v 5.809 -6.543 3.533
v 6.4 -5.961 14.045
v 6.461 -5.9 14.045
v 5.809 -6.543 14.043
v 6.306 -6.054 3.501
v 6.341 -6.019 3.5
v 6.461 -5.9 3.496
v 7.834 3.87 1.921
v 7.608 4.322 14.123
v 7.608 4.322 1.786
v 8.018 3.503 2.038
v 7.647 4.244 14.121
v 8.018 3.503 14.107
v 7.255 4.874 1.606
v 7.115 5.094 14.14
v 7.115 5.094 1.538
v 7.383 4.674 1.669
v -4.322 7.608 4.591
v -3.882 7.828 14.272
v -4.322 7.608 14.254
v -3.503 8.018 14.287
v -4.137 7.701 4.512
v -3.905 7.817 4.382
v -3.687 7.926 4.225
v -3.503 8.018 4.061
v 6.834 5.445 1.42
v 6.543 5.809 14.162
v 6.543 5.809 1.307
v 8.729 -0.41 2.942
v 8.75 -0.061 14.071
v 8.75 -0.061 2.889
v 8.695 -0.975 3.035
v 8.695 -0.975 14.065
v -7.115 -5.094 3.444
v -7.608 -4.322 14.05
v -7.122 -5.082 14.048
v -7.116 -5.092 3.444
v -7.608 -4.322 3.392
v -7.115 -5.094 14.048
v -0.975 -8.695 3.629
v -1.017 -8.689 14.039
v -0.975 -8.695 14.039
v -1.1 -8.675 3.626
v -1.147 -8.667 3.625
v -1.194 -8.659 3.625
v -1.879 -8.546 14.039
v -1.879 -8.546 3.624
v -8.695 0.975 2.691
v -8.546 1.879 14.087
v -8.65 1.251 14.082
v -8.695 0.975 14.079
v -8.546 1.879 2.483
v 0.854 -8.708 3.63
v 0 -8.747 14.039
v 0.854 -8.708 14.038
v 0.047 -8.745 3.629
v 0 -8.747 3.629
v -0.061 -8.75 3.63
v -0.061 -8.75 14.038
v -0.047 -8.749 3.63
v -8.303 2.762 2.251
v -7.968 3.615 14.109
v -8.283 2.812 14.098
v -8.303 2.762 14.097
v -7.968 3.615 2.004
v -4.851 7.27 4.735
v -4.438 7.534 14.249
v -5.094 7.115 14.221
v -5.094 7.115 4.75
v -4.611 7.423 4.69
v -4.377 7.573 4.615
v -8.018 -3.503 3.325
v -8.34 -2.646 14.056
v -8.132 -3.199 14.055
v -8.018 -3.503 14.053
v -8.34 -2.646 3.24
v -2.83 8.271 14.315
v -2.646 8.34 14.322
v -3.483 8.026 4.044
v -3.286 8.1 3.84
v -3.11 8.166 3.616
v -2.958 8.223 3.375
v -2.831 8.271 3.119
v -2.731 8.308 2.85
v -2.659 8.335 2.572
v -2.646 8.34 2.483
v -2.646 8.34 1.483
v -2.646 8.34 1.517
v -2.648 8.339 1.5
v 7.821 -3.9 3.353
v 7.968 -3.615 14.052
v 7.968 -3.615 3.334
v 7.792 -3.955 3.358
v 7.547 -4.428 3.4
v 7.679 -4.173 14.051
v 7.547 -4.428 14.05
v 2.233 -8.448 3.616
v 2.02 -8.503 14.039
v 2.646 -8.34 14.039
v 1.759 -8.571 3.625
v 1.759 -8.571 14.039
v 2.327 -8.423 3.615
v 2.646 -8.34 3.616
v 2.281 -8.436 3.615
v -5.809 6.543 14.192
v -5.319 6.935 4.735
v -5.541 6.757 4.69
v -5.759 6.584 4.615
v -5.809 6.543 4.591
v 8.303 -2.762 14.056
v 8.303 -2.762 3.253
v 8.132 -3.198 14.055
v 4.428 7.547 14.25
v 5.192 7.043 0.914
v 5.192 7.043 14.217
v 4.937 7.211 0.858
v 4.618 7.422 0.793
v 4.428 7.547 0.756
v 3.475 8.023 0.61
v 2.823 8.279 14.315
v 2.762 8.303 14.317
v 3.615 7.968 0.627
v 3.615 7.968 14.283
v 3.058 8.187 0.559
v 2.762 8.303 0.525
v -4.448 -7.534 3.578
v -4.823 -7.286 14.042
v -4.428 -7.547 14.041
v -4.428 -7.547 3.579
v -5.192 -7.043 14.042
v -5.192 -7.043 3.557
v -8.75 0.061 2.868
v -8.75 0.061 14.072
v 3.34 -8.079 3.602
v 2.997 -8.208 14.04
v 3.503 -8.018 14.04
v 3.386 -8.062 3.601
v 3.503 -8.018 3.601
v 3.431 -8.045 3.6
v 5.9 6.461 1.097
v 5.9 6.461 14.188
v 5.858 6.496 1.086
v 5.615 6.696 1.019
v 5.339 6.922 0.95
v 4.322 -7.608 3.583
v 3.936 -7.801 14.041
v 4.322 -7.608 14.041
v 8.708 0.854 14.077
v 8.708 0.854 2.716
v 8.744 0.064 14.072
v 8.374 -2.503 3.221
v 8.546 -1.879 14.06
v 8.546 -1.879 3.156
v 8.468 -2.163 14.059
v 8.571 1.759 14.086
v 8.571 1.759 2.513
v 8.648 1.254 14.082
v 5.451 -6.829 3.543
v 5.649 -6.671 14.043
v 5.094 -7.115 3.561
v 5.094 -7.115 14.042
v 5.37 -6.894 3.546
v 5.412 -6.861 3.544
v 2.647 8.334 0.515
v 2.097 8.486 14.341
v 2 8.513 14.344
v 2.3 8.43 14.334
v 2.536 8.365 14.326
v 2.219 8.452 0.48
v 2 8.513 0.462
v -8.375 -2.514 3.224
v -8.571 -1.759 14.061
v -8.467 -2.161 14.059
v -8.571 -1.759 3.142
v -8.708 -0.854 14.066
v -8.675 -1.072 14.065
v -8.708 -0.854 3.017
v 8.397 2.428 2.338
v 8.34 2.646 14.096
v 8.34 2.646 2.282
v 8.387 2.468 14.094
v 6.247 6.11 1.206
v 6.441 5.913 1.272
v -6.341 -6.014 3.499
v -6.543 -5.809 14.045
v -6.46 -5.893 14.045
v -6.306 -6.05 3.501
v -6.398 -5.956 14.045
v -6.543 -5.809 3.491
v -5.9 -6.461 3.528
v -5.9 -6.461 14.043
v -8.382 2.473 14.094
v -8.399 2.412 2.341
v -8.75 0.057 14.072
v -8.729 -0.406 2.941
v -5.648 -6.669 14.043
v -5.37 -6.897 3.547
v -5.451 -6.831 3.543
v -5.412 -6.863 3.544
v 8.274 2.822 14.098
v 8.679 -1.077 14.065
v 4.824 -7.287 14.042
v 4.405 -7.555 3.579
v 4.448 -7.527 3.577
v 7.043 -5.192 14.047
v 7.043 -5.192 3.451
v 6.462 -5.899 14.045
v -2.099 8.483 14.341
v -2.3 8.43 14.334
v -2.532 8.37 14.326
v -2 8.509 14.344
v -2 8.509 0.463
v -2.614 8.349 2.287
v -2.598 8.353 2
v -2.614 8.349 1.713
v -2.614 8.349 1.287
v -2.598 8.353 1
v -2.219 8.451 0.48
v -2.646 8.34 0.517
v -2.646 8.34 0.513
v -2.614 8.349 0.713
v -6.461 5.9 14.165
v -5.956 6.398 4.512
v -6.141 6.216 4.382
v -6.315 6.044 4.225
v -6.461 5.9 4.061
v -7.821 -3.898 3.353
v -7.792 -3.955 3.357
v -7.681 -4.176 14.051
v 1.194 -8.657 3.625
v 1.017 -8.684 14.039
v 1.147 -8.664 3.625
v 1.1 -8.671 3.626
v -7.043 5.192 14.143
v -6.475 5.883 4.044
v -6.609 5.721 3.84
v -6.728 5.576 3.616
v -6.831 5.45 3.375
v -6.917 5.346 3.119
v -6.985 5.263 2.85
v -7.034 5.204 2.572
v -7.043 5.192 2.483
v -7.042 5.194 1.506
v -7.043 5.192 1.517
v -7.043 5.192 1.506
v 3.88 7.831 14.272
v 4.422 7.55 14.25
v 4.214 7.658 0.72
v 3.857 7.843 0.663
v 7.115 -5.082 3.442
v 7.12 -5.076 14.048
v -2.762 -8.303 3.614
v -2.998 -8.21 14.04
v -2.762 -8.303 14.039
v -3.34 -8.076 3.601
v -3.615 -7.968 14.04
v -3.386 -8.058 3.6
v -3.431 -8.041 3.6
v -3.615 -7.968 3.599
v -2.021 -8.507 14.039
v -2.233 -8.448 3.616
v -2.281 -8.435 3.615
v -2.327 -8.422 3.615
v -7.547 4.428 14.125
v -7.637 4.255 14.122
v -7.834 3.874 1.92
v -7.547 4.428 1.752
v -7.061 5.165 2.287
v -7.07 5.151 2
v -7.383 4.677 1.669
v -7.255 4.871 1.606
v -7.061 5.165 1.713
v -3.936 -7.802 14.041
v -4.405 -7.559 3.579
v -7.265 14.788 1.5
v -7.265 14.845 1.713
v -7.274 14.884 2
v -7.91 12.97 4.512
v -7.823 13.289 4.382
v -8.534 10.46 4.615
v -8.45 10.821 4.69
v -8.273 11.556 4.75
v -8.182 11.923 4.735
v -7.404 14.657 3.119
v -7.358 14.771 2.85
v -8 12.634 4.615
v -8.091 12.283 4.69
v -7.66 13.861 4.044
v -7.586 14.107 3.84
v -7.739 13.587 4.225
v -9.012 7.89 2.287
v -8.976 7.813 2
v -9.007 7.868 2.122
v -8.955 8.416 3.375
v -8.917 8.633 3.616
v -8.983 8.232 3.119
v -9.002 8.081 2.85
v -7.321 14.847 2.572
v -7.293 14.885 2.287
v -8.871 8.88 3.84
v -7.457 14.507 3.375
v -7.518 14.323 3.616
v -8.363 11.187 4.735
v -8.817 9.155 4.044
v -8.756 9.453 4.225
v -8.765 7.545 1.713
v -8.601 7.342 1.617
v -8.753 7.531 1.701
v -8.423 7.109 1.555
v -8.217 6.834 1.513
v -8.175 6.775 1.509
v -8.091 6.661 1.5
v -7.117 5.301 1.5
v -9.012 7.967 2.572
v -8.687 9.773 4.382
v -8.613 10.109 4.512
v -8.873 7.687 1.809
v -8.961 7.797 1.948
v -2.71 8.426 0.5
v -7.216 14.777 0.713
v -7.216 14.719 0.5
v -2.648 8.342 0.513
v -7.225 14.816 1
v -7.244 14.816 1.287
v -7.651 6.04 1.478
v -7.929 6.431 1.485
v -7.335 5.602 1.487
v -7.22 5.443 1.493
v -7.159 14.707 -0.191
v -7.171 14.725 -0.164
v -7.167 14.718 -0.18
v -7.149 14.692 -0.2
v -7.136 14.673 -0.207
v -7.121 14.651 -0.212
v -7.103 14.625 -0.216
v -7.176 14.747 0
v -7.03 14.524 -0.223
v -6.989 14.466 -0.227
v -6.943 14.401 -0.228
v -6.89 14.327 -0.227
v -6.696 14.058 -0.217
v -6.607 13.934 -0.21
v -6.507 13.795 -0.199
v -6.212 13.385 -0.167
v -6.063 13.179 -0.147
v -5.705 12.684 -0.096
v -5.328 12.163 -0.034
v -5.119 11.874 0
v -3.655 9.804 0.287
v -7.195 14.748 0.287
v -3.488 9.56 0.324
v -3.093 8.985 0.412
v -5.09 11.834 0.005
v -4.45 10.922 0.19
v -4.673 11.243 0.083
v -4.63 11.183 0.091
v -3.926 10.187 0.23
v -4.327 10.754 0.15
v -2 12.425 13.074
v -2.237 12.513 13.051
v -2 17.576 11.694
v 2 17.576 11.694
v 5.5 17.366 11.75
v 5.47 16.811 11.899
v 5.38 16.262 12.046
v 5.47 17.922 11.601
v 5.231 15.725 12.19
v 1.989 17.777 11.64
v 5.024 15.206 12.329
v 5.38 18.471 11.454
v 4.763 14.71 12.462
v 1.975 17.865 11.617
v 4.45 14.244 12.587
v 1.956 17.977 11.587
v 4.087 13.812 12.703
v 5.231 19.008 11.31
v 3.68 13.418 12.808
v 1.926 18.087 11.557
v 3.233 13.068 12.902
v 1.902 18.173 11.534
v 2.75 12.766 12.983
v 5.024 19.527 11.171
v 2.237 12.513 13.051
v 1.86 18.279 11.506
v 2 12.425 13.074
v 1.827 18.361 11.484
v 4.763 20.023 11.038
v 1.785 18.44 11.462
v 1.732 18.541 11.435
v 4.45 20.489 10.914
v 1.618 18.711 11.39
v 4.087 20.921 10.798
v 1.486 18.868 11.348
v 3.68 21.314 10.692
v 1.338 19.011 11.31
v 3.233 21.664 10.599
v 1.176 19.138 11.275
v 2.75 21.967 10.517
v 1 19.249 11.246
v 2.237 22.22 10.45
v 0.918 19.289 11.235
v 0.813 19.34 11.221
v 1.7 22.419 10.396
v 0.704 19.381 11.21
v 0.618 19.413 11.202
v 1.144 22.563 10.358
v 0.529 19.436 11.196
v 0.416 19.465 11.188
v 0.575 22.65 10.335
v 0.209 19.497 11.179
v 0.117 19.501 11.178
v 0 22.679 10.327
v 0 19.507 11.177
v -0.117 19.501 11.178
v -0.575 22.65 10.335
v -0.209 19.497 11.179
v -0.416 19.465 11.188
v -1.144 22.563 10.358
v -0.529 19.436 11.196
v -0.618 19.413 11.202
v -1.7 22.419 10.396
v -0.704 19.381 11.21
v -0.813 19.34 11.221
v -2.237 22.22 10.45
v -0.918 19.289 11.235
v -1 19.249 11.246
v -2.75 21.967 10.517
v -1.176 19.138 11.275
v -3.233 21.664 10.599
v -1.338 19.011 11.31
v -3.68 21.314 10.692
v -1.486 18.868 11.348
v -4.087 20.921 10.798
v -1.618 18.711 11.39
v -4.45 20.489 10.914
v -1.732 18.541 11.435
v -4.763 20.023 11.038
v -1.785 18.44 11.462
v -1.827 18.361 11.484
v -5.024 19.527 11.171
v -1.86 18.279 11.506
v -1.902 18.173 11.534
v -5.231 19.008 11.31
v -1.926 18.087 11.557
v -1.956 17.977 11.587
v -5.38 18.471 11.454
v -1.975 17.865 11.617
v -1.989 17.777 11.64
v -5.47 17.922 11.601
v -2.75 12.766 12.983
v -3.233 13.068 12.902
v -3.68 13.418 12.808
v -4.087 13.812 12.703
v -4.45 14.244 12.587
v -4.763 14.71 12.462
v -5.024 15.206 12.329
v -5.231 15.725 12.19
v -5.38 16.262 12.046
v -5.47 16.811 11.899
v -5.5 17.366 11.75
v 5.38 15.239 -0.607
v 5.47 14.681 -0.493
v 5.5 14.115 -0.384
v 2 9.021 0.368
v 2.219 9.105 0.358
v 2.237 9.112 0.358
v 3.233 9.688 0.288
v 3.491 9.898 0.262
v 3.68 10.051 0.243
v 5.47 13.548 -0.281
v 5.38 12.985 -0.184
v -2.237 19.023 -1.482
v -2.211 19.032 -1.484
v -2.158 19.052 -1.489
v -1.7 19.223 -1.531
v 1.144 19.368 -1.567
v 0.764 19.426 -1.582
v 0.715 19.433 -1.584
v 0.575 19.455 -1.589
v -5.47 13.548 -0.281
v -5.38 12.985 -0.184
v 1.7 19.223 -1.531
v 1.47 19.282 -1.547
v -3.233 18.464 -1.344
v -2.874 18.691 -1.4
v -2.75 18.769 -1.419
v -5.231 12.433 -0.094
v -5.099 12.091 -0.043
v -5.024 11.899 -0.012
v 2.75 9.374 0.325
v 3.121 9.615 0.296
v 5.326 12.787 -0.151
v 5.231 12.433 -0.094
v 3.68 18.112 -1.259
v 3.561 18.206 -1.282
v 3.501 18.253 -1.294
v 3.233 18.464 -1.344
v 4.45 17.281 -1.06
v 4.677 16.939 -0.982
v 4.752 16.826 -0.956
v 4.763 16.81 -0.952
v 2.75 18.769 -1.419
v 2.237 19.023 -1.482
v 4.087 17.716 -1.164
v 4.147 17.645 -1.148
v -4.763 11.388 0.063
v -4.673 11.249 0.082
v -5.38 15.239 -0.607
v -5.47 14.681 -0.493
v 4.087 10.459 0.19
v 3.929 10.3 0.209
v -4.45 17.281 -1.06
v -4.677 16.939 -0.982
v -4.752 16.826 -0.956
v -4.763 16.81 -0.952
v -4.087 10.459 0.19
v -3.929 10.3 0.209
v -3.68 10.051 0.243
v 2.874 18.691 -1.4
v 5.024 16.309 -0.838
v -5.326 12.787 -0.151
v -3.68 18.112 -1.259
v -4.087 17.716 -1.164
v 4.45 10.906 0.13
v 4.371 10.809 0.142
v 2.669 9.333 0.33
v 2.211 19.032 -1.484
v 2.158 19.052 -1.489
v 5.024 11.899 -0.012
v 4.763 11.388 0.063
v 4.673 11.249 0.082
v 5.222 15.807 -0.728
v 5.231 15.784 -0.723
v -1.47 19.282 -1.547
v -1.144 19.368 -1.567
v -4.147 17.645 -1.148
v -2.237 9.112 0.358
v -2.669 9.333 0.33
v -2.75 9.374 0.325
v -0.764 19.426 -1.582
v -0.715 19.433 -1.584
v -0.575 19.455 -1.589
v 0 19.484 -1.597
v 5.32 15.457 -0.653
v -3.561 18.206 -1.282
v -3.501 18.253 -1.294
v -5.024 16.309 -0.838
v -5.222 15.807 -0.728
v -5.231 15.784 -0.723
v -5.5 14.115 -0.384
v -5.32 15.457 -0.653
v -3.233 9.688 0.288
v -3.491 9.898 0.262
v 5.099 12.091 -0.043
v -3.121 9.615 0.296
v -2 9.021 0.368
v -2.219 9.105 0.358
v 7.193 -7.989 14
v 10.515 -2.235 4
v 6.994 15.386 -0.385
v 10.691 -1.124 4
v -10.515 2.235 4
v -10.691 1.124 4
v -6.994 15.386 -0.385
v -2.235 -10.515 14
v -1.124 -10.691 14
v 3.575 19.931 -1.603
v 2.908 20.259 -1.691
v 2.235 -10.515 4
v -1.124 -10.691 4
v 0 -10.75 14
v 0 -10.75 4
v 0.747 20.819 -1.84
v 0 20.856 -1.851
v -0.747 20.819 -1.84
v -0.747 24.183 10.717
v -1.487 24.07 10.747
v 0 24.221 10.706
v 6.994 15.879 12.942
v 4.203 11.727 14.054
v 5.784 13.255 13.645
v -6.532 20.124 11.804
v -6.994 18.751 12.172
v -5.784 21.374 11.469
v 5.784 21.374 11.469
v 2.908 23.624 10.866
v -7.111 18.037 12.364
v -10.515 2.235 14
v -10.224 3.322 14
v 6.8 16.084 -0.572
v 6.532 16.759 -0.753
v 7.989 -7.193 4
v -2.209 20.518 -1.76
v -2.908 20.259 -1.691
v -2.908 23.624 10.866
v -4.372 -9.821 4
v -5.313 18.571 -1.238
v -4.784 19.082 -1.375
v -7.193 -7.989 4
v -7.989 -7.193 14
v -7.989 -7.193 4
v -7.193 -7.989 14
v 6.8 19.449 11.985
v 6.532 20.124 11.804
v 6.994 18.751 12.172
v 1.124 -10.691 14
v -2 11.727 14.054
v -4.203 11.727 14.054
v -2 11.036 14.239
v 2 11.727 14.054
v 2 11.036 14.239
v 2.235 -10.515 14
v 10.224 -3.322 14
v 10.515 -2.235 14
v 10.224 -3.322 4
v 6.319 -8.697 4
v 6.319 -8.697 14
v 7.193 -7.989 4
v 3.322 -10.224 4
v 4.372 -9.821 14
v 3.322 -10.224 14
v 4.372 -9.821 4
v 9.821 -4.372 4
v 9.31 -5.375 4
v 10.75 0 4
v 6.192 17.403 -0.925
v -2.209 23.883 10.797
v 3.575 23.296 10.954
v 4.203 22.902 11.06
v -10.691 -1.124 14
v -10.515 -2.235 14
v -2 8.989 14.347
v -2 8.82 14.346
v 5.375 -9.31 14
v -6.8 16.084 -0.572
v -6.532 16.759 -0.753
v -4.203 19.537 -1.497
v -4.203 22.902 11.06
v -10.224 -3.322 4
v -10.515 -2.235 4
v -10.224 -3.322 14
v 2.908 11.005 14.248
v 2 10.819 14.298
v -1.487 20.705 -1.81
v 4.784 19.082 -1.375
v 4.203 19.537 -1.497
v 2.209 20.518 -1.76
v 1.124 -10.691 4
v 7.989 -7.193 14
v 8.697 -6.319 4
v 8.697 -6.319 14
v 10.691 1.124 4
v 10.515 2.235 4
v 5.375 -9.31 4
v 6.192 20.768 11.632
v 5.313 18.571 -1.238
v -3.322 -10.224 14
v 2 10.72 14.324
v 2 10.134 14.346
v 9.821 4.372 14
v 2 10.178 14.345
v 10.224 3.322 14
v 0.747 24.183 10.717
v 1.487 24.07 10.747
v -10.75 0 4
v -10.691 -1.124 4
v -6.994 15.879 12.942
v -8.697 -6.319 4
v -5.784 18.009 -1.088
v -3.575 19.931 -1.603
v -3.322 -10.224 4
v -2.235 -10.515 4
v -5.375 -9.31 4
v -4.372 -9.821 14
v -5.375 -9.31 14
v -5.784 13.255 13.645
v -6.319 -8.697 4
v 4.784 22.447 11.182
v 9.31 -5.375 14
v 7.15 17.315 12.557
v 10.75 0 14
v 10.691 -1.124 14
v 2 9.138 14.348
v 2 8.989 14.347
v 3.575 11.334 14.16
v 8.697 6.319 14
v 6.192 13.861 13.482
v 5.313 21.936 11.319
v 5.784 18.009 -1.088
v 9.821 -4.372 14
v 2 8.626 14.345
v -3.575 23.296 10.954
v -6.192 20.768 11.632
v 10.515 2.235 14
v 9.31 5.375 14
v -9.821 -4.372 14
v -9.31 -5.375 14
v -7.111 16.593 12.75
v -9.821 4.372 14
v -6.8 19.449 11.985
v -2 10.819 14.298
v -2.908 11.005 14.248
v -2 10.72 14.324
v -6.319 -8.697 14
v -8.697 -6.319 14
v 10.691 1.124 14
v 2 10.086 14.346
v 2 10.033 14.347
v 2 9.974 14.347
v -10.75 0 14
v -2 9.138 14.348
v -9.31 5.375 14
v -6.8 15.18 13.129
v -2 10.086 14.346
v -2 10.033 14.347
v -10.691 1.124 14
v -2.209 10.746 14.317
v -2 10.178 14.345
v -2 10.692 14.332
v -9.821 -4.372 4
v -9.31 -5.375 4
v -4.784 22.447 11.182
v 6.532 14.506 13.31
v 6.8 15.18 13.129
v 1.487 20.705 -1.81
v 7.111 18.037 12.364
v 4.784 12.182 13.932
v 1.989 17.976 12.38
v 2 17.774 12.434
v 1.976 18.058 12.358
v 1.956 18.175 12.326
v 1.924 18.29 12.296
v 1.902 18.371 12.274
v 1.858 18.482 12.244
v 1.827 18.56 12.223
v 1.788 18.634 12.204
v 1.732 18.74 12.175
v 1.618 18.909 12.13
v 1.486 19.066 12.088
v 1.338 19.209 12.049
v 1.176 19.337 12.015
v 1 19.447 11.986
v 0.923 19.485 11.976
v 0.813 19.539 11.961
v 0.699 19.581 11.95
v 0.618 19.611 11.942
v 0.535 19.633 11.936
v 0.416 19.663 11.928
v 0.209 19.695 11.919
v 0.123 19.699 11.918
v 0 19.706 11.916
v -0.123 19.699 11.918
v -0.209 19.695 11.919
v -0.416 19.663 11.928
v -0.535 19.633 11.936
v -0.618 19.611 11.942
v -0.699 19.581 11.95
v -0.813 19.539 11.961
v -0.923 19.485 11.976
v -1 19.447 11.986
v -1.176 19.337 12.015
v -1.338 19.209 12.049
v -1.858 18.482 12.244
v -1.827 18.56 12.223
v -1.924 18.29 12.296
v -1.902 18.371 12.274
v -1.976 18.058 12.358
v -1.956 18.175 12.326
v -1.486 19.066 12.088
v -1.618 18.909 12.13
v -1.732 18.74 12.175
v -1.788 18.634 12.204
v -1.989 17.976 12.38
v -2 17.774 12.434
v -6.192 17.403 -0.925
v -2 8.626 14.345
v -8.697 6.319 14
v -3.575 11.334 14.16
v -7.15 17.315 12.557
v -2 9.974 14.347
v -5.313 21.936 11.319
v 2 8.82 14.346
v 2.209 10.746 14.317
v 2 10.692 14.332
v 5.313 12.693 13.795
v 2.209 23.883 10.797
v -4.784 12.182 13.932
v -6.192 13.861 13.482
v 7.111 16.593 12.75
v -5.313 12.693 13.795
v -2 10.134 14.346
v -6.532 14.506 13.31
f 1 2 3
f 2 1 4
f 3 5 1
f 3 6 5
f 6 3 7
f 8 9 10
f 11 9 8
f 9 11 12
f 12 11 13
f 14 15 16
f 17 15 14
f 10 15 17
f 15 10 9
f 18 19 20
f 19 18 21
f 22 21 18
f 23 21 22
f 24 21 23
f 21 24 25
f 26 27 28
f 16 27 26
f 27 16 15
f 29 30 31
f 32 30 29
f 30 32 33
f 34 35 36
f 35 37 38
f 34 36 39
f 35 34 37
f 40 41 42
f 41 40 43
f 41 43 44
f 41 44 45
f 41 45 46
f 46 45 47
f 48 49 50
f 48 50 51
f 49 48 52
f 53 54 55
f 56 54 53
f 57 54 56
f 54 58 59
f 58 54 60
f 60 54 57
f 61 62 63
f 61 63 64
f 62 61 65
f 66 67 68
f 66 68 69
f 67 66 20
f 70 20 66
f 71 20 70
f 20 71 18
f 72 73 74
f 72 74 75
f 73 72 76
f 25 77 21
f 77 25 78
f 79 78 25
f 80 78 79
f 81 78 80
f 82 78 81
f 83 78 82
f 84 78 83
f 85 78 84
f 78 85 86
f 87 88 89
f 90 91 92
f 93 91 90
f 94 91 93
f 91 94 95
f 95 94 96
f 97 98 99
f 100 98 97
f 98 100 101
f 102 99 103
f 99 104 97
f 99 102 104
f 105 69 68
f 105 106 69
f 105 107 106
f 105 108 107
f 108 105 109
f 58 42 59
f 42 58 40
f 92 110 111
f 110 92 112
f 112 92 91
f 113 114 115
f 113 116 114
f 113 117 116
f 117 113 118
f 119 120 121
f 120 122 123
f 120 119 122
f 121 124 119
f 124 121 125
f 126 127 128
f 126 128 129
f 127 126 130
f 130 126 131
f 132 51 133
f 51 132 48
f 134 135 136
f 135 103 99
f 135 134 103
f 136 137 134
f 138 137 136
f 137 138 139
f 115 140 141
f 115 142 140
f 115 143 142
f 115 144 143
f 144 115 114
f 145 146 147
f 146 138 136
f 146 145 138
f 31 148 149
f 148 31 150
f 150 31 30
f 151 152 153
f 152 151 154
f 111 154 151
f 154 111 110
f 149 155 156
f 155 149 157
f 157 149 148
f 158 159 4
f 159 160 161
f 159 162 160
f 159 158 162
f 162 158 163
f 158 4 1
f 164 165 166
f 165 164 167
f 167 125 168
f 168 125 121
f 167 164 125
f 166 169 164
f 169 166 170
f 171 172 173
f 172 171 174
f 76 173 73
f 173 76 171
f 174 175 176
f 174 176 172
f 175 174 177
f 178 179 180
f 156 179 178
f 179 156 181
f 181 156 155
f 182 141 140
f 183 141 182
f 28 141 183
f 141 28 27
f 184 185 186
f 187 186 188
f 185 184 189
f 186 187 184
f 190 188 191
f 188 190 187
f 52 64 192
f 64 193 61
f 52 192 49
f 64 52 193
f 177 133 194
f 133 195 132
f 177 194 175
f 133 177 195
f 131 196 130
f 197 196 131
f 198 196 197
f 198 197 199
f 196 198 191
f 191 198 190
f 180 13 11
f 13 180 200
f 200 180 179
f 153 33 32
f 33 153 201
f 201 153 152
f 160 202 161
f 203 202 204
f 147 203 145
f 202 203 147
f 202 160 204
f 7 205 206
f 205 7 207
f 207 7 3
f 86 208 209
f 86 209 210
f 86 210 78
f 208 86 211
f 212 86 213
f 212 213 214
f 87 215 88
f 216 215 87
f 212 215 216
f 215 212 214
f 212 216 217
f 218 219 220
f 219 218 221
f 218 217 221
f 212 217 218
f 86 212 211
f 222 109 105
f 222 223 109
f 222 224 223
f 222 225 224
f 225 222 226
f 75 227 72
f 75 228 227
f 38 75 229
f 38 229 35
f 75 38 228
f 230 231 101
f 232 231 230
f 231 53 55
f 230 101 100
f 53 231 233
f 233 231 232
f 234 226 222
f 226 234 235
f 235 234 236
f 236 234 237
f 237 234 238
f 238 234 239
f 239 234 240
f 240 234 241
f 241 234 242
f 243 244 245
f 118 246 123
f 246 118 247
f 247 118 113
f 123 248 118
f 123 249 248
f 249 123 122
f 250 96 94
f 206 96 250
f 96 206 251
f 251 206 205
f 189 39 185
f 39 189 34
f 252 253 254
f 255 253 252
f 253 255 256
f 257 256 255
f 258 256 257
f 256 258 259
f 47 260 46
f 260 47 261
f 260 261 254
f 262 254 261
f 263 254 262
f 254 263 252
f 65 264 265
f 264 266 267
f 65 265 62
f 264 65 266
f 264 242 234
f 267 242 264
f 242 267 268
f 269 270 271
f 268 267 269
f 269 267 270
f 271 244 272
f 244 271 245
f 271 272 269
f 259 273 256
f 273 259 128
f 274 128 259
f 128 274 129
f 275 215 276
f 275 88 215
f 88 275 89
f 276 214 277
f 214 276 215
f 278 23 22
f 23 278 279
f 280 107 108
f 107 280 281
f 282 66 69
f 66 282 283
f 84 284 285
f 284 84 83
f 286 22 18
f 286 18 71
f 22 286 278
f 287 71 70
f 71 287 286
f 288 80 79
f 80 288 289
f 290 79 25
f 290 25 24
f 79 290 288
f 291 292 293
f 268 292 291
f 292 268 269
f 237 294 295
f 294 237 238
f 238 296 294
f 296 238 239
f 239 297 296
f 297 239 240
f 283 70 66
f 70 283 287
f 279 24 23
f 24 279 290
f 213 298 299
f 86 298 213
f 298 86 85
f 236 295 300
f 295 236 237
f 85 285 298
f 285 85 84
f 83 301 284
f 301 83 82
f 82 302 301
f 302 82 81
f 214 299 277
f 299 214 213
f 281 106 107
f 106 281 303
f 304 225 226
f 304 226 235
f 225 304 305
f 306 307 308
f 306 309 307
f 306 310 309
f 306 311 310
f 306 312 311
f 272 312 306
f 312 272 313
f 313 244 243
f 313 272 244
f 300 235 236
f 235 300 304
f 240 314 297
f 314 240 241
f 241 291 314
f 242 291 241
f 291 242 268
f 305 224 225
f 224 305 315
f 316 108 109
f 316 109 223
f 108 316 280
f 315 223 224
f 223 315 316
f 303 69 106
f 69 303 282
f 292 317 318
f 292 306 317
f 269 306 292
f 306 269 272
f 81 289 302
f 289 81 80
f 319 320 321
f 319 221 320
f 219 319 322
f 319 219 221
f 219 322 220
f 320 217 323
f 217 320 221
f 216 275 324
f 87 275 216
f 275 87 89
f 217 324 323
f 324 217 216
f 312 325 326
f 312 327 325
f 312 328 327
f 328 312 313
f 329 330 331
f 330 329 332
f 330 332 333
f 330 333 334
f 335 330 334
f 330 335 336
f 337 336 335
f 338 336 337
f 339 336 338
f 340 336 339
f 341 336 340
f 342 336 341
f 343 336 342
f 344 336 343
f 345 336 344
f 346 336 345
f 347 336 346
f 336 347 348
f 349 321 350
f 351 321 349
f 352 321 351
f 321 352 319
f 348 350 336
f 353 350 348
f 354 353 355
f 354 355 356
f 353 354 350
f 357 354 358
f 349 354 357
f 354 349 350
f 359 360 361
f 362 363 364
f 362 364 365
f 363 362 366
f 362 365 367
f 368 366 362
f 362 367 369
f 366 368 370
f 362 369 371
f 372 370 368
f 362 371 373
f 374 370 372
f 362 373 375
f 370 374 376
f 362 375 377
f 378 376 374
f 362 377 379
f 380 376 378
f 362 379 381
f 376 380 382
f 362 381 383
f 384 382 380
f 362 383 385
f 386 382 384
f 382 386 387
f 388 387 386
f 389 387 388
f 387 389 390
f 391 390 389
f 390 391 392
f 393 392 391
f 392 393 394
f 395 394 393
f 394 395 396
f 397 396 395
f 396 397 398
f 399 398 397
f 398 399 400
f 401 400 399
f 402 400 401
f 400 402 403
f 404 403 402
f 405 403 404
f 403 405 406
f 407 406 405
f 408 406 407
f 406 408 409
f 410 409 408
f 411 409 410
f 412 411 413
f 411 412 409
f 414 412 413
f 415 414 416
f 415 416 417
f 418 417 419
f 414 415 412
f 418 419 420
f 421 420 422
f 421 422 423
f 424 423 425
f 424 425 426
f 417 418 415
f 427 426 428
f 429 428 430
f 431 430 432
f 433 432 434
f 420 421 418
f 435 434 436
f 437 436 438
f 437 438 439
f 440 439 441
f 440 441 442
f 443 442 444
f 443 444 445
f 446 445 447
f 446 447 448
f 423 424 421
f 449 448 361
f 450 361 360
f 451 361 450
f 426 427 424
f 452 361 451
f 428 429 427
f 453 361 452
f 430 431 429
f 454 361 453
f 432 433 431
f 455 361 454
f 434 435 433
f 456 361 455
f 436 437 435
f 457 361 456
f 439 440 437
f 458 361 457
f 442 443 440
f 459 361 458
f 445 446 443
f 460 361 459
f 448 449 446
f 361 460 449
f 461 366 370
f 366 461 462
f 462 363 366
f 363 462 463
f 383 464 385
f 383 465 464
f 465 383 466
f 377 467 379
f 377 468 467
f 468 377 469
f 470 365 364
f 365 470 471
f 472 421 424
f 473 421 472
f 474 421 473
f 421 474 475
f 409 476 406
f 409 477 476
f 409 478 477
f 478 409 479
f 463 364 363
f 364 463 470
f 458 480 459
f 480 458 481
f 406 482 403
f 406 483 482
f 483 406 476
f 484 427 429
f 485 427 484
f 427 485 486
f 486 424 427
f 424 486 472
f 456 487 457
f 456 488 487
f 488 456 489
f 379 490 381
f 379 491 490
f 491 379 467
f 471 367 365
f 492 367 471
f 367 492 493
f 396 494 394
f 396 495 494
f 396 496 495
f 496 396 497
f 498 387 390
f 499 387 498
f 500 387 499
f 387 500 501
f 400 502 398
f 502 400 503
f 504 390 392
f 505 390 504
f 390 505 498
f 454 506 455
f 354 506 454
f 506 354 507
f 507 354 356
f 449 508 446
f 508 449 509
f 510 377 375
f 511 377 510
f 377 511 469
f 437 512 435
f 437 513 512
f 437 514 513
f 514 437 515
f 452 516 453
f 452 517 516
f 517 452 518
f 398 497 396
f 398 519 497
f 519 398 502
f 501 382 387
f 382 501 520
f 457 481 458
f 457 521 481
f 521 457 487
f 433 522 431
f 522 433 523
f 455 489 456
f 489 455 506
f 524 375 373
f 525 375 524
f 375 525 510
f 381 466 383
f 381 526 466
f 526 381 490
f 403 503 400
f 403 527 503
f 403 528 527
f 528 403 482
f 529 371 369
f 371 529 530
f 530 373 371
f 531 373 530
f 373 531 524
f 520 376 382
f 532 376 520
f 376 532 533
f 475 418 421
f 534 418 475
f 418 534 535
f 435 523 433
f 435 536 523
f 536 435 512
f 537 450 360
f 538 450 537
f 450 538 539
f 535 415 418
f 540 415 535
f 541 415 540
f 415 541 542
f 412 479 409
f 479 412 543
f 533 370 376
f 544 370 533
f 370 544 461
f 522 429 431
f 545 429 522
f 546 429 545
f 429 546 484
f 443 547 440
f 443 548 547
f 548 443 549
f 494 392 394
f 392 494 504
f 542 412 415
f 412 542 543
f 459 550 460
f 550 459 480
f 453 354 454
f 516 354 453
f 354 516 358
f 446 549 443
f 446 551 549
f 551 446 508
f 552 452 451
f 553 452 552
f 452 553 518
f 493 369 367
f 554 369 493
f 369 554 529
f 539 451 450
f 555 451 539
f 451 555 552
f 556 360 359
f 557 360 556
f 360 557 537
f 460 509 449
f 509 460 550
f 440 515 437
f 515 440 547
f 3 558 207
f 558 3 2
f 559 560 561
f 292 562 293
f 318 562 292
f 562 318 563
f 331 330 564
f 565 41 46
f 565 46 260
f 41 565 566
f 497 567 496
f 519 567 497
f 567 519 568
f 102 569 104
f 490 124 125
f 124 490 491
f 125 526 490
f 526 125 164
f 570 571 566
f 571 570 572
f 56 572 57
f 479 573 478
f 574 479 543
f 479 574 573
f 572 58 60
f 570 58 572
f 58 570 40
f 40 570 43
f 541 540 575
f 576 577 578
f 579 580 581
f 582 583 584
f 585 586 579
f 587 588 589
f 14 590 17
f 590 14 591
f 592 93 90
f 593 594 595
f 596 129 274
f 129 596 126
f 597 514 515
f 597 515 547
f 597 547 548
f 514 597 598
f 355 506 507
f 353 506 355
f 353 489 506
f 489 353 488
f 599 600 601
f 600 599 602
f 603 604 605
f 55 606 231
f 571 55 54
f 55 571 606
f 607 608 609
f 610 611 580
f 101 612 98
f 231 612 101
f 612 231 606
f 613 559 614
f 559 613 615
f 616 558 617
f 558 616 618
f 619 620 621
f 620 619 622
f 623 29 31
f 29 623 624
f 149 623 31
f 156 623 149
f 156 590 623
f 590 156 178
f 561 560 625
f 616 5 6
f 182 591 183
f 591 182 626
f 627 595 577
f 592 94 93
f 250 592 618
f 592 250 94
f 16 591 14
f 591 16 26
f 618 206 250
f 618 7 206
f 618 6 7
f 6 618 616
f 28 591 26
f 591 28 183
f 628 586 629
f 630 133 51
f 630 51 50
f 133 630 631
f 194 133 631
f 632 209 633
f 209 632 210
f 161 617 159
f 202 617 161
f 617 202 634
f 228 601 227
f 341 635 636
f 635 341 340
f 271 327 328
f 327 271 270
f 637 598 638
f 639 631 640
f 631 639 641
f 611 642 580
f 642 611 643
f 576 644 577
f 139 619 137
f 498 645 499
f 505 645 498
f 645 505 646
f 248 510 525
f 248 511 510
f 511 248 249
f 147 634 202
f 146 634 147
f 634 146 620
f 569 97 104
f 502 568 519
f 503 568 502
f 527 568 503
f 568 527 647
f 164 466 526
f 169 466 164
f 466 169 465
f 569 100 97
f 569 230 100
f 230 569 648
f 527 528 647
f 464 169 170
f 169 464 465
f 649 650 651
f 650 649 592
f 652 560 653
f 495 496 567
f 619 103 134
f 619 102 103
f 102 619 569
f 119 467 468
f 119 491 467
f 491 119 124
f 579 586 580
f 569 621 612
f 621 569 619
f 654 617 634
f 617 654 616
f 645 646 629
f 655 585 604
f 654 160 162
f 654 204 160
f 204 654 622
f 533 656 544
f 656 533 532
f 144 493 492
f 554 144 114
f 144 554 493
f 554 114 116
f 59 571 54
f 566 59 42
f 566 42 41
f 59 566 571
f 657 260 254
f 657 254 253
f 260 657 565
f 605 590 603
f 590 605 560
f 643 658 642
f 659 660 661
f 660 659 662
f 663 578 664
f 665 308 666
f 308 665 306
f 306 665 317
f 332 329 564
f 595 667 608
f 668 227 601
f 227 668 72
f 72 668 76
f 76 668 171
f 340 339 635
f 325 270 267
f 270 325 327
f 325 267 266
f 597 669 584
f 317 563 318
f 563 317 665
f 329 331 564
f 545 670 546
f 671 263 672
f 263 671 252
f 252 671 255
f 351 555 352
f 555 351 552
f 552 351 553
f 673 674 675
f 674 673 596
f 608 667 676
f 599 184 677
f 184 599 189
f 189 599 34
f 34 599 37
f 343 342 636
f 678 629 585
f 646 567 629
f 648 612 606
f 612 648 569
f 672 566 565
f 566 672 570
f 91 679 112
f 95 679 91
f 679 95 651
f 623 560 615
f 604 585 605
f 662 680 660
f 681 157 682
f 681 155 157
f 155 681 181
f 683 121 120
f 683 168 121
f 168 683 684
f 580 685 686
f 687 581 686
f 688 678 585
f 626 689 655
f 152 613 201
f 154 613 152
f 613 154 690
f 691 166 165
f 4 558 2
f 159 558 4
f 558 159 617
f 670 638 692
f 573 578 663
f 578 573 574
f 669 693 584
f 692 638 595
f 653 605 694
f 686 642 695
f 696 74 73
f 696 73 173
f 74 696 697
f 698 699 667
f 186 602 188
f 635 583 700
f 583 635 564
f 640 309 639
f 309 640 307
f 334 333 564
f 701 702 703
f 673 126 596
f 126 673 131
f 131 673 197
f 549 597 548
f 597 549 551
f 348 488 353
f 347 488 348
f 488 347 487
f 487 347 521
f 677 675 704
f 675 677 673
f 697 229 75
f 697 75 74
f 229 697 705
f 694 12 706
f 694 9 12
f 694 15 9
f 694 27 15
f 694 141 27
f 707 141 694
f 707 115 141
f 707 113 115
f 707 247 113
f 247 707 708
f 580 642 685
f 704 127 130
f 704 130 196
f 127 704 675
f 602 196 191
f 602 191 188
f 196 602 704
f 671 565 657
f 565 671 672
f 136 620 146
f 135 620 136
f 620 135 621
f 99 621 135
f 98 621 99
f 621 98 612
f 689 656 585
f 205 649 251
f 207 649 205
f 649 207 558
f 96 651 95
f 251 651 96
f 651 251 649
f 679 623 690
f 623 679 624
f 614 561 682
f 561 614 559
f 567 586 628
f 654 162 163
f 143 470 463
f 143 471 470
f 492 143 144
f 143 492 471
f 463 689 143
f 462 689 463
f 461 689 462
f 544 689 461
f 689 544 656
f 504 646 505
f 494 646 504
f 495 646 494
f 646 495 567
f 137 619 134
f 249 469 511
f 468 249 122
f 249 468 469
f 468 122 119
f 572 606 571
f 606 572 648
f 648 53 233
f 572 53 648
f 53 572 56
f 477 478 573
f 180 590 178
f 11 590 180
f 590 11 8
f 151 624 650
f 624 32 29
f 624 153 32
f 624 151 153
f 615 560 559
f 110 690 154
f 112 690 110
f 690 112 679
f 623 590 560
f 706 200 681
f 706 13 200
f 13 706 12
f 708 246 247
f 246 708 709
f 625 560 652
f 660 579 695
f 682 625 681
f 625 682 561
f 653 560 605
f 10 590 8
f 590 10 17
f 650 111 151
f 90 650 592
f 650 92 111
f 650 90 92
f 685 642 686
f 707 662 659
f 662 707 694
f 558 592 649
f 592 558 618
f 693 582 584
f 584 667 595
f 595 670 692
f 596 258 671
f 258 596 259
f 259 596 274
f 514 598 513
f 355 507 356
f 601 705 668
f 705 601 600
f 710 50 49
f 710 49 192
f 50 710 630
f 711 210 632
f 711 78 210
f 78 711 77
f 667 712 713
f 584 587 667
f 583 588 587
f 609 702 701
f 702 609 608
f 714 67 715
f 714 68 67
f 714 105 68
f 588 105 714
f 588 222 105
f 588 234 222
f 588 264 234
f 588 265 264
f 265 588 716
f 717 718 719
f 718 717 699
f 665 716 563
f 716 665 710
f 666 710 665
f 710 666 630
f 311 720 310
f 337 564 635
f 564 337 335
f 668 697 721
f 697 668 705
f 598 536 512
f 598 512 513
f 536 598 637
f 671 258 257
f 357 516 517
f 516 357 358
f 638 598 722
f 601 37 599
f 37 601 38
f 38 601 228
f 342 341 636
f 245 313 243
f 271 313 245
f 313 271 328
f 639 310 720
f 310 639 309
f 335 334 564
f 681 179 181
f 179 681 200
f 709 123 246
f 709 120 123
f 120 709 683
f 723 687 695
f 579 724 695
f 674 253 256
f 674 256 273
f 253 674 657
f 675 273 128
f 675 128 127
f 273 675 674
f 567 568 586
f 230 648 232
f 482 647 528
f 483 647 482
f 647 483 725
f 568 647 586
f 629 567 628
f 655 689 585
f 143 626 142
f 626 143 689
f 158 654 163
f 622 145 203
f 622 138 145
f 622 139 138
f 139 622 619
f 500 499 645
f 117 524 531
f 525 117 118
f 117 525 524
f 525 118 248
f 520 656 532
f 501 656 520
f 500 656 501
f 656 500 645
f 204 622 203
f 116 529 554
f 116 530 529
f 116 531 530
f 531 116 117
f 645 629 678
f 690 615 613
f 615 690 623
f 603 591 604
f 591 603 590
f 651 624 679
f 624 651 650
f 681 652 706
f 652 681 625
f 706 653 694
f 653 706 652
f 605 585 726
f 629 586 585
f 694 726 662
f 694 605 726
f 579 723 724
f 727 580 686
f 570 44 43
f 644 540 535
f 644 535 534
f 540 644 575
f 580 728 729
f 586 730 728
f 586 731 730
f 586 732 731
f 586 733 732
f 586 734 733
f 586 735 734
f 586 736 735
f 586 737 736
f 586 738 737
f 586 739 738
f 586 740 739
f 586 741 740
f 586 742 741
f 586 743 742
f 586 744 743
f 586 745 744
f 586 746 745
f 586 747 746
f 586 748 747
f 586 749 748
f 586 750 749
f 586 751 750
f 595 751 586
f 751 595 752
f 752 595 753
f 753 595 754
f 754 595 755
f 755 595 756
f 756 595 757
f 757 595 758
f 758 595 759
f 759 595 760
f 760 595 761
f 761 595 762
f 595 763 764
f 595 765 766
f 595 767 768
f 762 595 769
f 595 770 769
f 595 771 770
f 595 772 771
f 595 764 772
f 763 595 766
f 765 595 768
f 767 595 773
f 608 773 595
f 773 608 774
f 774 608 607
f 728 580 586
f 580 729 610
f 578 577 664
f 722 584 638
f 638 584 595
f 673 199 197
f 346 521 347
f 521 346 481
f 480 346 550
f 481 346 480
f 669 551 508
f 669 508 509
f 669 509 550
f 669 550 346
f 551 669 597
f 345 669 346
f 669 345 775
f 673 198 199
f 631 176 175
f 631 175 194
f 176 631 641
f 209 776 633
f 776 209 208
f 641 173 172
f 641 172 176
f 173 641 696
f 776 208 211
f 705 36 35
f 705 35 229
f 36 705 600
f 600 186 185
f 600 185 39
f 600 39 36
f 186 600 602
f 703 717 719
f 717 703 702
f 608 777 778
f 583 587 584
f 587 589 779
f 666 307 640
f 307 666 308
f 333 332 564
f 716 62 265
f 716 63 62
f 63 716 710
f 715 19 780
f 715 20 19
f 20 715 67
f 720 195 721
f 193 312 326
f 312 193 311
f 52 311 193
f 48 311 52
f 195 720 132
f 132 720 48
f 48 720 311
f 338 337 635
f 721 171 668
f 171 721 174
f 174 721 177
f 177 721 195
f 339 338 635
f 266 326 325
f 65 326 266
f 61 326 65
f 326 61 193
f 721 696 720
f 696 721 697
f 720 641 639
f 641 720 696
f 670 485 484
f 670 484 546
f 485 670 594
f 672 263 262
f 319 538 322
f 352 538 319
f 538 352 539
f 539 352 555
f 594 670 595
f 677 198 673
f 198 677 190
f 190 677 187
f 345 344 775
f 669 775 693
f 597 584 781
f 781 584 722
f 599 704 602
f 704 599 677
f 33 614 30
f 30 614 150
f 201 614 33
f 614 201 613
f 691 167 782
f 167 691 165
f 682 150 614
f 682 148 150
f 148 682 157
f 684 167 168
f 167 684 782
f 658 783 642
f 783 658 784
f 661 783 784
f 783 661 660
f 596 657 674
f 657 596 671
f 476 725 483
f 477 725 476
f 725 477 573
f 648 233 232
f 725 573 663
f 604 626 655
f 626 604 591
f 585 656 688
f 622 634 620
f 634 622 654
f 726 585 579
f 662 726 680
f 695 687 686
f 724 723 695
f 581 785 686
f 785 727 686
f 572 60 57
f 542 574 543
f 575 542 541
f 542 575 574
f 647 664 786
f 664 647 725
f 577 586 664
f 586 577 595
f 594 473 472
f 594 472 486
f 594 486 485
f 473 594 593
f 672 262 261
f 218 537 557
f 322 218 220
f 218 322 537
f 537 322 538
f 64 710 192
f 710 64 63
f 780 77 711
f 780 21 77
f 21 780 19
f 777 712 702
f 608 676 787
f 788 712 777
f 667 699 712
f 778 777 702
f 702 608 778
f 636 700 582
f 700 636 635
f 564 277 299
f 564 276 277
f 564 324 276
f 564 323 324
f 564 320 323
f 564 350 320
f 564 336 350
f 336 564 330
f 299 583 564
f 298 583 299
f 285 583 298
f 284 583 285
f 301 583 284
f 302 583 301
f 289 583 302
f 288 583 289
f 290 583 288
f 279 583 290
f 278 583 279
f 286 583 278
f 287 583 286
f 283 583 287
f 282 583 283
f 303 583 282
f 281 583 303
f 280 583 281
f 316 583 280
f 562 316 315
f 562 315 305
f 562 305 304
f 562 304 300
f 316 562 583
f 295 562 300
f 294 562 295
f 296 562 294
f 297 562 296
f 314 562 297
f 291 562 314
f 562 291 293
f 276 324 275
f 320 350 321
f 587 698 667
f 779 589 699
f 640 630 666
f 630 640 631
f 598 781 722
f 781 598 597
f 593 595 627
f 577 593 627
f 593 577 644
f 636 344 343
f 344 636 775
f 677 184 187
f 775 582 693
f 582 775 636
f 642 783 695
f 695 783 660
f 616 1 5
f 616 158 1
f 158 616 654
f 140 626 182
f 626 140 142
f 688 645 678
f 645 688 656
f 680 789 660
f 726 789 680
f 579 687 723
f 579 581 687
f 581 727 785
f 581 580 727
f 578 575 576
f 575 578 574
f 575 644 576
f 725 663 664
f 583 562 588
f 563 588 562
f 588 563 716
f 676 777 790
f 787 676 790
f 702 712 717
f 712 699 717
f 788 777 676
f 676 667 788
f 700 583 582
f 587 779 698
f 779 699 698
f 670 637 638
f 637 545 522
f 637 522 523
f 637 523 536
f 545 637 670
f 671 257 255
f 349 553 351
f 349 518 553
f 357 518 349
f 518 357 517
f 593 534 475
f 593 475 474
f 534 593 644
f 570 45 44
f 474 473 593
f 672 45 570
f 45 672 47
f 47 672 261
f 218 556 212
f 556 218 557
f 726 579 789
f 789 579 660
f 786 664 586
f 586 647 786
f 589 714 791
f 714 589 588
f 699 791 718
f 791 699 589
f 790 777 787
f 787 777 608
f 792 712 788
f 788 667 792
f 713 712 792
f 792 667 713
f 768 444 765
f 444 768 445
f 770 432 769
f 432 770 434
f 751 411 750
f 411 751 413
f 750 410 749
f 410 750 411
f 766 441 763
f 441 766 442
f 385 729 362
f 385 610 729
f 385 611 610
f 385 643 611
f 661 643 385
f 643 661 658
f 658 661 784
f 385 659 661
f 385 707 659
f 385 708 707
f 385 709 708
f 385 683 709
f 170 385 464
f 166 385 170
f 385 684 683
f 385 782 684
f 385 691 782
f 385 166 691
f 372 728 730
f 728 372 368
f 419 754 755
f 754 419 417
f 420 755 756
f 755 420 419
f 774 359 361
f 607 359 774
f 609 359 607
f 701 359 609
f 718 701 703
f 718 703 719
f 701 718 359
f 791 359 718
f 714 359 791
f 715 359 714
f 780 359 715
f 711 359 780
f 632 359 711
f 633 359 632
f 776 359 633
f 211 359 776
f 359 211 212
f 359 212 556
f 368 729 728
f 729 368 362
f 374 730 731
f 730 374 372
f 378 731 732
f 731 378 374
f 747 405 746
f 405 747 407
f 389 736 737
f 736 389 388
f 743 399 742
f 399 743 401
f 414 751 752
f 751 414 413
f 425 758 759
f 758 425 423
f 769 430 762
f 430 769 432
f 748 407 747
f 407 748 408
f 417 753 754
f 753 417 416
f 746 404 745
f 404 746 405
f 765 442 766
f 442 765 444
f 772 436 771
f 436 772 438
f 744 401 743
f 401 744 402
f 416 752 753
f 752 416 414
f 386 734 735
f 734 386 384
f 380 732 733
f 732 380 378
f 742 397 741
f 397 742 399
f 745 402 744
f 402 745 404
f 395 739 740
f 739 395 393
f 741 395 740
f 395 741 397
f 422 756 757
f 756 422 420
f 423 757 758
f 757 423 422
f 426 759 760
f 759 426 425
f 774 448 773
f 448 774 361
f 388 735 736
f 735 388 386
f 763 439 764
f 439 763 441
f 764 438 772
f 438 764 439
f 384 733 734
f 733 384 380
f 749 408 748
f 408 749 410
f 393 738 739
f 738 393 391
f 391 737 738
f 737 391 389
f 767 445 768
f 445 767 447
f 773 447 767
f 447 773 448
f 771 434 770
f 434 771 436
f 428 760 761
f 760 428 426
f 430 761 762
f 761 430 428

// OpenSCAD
tube      =  4.0;
lock      = 11.0;
height    = 10.0;
trach     = 17.5;
thickness =  4.0;
hat       = 38.0;
trach_h   = 20.0;
oxygen    =  5.5;
oxygen_z  = 20.0;
oxygen_l  = 20.0;
hat_z     = 25.0;
hat_h     = 15.0;
co2_angle = 15.0;
$fn       = 60;

module ClimaTrach() {
    translate([0, 0, 1.1*trach_h])
    rotate([180, 0, 35.6]) {
        //main tube
        cylinder(h = trach_h + oxygen, d = trach);

        //hat
        translate([0, 0, hat_z])
    cylinder(h = hat_h, d = hat);

        //oxygen side tube
        translate([0, -0.45*trach, oxygen_z])
        rotate([90, 0, 0])
        cylinder(h = oxygen_l, d = oxygen);
    }
}

module co2_tube() {
    color([1,1,1])
    cylinder( h = height, d = tube );
    //translate([0, 0, -0.1*height])
    cylinder( h = height, d = lock );
}

module holder() {
    difference() {
        hull() {
            translate([0, 0, thickness])
            cylinder( h = height, d = trach+thickness);
    
            translate([0, 0.5*trach+1.3*thickness, 0])
            rotate([-co2_angle,0,0]) 
            scale(1.3)
            co2_tube();
        }

        translate([0, 0, -0]) ClimaTrach();
        translate([0, 0, -1]) ClimaTrach();
        translate([0, 0, -2]) ClimaTrach();
        
        translate([0, 0.5*trach+1.3*thickness, -1])
        rotate([-co2_angle,0,0]) 
        scale([1, 1, 1.32])
        co2_tube();
        
        //slit to insert sidestream CO2 tube
        hull() {
            rotate([-co2_angle,0,0]) 
            translate([0, 0.5*trach+1.3*thickness, -1])
            cylinder( h = 3*height, d = tube );

            translate([0, 0, -1])
            cylinder( h = 3*height, d = tube );
        }
    }
}

holder();

//ClimaTrach();
